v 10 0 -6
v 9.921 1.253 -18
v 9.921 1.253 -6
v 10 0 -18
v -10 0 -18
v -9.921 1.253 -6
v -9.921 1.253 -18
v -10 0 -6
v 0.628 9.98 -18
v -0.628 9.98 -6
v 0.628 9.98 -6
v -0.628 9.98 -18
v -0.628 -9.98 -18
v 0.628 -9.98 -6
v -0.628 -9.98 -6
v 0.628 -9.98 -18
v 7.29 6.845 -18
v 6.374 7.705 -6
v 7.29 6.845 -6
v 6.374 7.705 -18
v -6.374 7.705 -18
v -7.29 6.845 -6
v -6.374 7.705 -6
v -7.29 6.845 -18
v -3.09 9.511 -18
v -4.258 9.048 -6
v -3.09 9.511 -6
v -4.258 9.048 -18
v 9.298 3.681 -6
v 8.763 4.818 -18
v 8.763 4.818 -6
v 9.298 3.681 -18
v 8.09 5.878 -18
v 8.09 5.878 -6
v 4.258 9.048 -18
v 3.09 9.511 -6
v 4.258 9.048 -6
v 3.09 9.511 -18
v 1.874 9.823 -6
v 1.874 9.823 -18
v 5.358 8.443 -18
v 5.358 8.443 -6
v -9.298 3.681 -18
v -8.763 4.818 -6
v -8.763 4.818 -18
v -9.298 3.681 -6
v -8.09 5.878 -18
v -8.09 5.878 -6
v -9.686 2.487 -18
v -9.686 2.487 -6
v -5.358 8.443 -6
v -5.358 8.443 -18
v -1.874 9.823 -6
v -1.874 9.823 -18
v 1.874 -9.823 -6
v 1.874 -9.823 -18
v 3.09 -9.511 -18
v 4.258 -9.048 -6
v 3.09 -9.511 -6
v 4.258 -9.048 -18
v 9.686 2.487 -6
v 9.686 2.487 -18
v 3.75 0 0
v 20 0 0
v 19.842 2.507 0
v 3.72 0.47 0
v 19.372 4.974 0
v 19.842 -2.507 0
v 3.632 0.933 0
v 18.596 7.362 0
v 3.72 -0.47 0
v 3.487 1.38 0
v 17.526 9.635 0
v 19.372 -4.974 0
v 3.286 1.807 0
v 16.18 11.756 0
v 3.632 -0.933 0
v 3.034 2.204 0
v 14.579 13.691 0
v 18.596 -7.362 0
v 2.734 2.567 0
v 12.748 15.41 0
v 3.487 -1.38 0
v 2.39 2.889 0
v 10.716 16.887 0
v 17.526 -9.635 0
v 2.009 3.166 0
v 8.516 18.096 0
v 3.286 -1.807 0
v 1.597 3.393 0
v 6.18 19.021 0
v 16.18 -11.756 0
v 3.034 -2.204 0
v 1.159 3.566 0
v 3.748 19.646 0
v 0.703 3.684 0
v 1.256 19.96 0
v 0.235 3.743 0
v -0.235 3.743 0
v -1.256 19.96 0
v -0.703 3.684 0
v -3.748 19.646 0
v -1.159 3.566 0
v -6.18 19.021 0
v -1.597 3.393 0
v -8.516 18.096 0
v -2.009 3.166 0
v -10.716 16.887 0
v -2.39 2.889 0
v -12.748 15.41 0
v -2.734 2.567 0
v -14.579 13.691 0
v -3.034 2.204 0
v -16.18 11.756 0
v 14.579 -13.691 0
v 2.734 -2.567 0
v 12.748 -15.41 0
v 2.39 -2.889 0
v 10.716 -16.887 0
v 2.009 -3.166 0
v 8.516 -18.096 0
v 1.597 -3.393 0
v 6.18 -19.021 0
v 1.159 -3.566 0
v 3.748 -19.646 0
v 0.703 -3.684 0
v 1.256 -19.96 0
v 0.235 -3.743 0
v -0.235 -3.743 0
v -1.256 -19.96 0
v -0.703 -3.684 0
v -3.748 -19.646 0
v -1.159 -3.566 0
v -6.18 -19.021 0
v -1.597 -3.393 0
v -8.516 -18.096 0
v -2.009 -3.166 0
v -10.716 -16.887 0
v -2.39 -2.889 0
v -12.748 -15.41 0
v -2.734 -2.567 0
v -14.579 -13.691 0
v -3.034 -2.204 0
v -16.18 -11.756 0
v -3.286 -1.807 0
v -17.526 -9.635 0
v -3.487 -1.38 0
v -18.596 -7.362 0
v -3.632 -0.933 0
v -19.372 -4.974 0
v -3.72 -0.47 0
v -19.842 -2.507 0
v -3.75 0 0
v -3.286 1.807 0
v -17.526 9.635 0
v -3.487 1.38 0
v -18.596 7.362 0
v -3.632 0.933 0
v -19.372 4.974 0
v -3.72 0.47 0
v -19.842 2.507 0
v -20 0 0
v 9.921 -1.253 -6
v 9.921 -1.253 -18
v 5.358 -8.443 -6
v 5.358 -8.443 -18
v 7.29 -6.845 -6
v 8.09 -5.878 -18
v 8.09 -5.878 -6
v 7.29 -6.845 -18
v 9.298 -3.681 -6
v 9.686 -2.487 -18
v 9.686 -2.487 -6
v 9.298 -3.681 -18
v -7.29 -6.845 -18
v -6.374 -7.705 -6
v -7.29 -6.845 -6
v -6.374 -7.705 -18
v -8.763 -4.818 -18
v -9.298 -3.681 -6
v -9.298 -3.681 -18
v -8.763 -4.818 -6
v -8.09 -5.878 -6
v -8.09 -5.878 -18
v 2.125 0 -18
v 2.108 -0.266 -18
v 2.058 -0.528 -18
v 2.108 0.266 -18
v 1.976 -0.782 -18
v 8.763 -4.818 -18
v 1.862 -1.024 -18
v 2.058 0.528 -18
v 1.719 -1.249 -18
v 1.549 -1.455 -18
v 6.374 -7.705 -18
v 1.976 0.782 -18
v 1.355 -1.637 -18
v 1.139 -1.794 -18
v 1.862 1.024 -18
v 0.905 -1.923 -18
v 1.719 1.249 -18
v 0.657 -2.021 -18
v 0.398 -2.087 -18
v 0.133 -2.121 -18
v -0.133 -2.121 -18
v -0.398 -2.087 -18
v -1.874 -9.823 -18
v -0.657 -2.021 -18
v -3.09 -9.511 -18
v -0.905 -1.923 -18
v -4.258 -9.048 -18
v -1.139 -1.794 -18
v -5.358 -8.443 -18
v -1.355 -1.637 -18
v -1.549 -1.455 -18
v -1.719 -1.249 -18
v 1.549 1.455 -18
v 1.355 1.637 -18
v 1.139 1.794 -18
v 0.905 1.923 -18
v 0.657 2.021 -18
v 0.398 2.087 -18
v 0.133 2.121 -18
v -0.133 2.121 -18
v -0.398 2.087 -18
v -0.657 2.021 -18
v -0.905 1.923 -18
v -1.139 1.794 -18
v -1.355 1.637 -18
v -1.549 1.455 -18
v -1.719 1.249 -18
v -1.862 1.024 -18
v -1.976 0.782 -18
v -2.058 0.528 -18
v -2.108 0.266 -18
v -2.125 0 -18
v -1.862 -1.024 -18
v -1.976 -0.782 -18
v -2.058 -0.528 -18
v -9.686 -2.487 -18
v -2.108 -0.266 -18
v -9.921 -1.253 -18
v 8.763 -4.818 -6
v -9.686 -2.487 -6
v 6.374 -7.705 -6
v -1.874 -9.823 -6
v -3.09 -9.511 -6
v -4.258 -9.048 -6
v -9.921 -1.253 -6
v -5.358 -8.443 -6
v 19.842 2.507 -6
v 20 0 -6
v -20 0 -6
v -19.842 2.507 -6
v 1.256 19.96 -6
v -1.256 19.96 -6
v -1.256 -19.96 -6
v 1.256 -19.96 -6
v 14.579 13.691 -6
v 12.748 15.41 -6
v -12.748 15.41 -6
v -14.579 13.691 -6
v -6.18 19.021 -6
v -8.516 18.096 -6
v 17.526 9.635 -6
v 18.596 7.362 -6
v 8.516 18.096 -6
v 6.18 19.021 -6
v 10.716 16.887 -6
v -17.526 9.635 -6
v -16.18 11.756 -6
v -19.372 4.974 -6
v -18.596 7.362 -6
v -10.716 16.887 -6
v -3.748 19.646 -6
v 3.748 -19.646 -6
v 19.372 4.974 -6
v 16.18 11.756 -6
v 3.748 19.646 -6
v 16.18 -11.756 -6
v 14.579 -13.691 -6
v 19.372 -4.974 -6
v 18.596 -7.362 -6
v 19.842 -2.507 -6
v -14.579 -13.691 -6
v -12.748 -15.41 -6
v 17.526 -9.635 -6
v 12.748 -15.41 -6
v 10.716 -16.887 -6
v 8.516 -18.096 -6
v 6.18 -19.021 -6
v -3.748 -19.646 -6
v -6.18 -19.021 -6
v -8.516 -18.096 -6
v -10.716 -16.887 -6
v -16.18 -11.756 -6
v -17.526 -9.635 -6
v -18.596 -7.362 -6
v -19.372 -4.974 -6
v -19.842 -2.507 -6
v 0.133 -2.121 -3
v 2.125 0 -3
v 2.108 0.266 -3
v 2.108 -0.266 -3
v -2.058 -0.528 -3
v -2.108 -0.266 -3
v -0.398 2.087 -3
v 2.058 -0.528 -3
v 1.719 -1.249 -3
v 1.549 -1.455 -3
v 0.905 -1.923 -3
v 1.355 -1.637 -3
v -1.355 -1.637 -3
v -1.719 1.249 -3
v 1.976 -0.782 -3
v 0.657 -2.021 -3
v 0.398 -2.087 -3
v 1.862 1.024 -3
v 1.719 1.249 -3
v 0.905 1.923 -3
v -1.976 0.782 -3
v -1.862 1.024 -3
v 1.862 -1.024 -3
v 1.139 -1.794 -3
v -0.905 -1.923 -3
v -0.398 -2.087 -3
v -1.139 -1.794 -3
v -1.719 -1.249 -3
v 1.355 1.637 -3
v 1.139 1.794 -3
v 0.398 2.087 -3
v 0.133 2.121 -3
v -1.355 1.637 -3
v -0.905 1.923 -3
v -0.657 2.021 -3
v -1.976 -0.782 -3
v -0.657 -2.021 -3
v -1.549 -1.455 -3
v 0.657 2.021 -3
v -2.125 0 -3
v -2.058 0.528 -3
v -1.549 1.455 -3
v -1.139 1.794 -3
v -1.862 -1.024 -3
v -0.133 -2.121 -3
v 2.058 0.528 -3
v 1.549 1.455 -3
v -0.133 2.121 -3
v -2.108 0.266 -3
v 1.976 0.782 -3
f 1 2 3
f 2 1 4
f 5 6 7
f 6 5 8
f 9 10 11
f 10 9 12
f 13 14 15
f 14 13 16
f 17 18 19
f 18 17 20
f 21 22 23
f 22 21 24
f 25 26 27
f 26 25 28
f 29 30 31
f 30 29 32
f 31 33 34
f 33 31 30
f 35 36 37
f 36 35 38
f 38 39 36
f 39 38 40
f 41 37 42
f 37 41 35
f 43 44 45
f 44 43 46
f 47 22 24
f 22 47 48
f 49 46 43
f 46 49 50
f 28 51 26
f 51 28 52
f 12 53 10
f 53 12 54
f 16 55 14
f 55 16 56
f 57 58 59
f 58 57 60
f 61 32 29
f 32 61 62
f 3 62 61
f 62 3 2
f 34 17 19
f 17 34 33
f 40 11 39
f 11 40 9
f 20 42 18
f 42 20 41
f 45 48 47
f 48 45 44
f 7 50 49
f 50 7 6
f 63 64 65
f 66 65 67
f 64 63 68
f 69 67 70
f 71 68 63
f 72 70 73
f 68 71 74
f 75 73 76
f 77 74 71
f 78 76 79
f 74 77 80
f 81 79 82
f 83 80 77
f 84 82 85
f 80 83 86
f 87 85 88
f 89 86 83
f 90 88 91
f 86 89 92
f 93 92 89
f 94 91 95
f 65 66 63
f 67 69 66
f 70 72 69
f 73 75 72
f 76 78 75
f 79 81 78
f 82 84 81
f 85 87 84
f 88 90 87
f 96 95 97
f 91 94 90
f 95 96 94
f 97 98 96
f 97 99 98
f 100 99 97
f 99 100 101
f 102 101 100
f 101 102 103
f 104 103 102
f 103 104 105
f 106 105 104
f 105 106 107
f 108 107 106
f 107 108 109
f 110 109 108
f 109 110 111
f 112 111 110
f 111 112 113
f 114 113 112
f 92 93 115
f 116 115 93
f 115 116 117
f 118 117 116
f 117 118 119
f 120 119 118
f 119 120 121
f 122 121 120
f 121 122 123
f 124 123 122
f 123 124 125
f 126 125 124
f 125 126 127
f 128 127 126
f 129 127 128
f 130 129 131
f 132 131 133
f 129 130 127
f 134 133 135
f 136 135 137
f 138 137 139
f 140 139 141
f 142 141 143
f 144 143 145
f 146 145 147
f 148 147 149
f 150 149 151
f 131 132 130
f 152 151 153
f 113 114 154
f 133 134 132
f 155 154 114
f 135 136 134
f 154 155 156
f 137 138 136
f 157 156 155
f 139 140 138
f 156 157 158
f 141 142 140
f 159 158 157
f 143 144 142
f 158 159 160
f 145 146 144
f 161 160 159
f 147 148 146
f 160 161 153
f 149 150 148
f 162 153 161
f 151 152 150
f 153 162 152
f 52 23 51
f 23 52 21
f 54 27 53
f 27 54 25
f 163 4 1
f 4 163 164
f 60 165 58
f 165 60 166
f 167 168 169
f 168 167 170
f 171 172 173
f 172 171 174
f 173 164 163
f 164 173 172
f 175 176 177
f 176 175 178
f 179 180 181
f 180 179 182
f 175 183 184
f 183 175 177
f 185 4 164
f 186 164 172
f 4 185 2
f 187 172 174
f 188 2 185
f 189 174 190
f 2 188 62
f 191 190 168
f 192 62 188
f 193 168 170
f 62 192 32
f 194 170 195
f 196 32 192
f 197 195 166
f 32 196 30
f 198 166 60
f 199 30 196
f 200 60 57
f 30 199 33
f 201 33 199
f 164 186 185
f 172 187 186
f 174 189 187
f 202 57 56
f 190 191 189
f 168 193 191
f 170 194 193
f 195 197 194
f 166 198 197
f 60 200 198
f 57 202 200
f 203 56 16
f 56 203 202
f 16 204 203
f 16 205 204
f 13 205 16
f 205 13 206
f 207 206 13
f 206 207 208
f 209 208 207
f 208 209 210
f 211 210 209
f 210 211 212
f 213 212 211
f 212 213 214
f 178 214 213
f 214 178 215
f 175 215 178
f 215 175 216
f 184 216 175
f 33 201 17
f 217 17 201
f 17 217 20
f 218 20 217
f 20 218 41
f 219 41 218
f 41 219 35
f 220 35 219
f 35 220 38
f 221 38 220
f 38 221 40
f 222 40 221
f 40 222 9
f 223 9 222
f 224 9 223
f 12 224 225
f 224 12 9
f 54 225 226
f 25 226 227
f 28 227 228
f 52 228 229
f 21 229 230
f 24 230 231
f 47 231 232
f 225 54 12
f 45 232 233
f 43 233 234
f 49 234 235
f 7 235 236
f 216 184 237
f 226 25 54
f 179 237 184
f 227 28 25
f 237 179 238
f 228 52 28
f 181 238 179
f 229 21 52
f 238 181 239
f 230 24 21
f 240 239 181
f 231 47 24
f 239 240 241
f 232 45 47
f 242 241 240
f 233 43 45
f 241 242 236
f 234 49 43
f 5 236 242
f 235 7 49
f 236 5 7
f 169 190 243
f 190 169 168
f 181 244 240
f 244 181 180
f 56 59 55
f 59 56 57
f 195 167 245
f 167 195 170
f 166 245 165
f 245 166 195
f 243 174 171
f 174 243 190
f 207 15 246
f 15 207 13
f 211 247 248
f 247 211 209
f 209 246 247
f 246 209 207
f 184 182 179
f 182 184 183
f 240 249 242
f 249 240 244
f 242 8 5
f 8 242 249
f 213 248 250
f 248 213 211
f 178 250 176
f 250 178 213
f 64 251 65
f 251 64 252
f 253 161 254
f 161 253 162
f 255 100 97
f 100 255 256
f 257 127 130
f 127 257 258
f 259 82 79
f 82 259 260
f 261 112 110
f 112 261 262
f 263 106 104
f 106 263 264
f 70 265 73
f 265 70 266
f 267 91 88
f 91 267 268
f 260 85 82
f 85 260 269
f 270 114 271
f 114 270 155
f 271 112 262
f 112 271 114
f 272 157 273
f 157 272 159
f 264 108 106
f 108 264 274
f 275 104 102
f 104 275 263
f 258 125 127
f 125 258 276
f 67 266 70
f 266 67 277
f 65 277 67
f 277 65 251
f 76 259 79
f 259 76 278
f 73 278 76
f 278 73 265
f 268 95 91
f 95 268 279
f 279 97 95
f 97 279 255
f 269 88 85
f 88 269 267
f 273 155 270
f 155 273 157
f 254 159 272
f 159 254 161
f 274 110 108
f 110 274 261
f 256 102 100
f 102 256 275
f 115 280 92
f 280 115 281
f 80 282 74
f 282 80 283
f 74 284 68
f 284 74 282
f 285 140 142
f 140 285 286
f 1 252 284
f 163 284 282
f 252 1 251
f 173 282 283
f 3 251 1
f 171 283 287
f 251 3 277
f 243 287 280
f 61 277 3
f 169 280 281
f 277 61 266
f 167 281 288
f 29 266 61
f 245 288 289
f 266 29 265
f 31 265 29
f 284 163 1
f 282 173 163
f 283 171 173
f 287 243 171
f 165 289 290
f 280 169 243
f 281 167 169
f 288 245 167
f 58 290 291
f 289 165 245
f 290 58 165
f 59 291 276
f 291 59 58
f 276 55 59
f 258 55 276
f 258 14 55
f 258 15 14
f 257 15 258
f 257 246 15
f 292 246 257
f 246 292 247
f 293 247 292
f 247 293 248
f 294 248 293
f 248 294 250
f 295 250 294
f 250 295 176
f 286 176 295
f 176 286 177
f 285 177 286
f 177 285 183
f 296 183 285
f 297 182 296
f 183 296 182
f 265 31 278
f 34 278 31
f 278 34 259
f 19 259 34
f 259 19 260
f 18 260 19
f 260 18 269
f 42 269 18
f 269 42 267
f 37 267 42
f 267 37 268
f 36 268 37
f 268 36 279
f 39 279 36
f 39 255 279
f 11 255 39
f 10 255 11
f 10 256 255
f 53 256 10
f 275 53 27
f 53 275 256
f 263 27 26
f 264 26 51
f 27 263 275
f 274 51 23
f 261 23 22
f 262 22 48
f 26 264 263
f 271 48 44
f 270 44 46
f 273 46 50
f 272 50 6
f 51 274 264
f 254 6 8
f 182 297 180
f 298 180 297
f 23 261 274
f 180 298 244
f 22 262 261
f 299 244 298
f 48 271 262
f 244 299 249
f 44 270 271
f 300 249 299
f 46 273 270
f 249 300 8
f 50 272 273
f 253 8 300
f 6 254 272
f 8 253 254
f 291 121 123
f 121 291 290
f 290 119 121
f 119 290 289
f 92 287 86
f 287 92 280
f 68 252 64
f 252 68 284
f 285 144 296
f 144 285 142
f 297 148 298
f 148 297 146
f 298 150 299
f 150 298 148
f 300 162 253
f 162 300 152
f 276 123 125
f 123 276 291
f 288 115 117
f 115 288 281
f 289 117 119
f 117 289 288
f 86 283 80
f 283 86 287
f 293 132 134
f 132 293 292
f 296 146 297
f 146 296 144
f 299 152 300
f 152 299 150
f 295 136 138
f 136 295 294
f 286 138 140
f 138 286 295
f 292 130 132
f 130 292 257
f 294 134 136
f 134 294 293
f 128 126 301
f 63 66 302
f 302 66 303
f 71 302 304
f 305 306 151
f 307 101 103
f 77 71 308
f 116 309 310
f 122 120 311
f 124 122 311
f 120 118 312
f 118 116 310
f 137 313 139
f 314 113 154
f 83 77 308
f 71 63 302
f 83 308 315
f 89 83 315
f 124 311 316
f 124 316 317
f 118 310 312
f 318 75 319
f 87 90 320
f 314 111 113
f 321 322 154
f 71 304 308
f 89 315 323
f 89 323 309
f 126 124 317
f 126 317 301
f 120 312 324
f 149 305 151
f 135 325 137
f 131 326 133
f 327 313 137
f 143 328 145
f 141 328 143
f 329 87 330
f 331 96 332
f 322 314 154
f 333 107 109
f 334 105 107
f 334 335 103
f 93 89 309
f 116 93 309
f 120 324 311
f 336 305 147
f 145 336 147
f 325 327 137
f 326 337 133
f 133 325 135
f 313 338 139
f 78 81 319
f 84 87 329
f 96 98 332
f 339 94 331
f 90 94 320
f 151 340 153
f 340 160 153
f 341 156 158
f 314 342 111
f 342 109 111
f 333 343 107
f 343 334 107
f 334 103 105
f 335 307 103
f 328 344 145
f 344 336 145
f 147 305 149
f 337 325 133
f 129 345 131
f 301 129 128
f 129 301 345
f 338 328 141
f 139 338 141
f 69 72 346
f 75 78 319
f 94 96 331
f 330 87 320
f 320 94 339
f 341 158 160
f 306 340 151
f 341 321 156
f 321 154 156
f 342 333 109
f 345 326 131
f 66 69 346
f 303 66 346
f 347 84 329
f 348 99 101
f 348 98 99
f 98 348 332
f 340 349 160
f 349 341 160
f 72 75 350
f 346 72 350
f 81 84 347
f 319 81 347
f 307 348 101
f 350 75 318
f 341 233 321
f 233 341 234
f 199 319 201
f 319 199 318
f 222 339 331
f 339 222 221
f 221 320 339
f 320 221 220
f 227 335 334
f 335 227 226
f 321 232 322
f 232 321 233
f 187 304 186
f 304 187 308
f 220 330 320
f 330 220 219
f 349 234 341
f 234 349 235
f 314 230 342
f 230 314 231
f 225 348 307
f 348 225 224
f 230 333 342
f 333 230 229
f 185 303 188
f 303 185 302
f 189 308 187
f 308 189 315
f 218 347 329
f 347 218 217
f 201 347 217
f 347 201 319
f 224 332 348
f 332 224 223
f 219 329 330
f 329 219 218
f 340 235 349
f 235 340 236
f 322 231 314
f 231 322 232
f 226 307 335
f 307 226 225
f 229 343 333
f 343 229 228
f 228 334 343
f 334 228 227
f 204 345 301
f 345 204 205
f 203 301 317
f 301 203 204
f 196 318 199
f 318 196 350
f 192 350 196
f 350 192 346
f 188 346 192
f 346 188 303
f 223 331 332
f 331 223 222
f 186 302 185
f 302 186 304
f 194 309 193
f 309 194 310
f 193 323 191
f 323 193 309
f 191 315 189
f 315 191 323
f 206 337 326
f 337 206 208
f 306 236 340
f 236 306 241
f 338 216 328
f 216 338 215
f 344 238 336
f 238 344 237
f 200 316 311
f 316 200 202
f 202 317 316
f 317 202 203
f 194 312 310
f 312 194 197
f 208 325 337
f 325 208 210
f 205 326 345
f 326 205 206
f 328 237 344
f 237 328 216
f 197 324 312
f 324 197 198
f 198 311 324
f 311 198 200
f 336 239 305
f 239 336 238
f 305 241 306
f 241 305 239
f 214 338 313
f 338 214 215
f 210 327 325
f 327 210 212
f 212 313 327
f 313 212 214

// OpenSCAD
$fn = 50;


difference() {
	union() {
		translate(v = [0, 0, -18.0000000000]) {
			cylinder(h = 18, r = 10.0000000000);
		}
		translate(v = [0, 0, -6.0000000000]) {
			cylinder(h = 6, r = 20.0000000000);
		}
	}
	union() {
		translate(v = [0, 0, 0]) {
			rotate(a = [0, 0, 0]) {
				difference() {
					union() {
						#translate(v = [0, 0, -18.0000000000]) {
							cylinder(h = 18, r = 2.0000000000);
						}
						#translate(v = [0, 0, -3]) {
							cylinder(h = 3, r = 10.0000000000, r1 = 2.1250000000, r2 = 3.7500000000);
						}
						#translate(v = [0, 0, -18.0000000000]) {
							cylinder(h = 18, r = 2.1250000000);
						}
						#translate(v = [0, 0, -18.0000000000]) {
							cylinder(h = 18, r = 2.0000000000);
						}
					}
					union();
				}
			}
		}
	}
}
